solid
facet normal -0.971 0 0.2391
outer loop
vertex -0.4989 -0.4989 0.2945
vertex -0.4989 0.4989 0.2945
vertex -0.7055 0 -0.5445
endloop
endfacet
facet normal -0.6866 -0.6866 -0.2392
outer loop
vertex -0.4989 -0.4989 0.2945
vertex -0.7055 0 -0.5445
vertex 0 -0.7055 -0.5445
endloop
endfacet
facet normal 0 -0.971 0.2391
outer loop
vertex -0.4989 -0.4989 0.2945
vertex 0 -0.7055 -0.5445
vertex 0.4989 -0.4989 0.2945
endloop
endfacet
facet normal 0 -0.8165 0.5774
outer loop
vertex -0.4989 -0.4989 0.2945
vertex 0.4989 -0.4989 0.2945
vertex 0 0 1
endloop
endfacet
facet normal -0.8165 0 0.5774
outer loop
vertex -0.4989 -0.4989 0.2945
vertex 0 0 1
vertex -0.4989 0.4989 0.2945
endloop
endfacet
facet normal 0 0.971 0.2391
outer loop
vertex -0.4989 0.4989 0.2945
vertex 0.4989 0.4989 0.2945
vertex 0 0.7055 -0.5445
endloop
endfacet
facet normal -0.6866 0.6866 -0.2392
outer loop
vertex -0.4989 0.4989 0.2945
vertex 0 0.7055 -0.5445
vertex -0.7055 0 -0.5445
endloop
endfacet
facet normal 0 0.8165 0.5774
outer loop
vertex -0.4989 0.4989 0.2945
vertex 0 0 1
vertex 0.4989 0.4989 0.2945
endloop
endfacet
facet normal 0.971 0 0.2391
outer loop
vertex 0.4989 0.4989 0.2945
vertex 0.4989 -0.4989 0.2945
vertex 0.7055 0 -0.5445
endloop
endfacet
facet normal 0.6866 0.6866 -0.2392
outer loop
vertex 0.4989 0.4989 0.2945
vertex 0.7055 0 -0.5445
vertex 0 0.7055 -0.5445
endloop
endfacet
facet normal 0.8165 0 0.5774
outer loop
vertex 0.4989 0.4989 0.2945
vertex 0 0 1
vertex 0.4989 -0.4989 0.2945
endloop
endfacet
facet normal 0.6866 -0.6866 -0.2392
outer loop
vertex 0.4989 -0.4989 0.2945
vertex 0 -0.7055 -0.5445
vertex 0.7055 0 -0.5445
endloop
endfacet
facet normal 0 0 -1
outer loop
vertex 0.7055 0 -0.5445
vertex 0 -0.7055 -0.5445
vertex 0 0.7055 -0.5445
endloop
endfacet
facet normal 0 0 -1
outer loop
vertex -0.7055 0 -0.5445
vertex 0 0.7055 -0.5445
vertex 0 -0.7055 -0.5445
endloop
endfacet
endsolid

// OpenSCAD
polyhedron( points = [[-0.498867022556559, -0.498867022568228, 0.294495490931948], [-0.498867022511764, 0.498867022590098, 0.294495490931948], [0.498867022467389, 0.498867022590098, 0.294495490931948], [0.49886702251218, -0.498867022568228, 0.294495490931948], [3.67315743759804e-12, -0.705504509103613, -0.544495490936823], [-0.705504509050992, 4.60763040078624e-11, -0.544495490936823], [6.70222738313765e-11, 0.705504509068393, -0.544495490933643], [0.705504509065376, -6.89973713492019e-11, -0.544495490920502], [3.6741543741764e-12, 1.44001950207402e-11, 1.0]], faces = [[0, 1, 5], [0, 5, 4], [0, 4, 3], [0, 3, 8], [0, 8, 1], [1, 2, 6], [1, 6, 5], [1, 8, 2], [2, 3, 7], [2, 7, 6], [2, 8, 3], [3, 4, 7], [4, 5, 6, 7]]);
